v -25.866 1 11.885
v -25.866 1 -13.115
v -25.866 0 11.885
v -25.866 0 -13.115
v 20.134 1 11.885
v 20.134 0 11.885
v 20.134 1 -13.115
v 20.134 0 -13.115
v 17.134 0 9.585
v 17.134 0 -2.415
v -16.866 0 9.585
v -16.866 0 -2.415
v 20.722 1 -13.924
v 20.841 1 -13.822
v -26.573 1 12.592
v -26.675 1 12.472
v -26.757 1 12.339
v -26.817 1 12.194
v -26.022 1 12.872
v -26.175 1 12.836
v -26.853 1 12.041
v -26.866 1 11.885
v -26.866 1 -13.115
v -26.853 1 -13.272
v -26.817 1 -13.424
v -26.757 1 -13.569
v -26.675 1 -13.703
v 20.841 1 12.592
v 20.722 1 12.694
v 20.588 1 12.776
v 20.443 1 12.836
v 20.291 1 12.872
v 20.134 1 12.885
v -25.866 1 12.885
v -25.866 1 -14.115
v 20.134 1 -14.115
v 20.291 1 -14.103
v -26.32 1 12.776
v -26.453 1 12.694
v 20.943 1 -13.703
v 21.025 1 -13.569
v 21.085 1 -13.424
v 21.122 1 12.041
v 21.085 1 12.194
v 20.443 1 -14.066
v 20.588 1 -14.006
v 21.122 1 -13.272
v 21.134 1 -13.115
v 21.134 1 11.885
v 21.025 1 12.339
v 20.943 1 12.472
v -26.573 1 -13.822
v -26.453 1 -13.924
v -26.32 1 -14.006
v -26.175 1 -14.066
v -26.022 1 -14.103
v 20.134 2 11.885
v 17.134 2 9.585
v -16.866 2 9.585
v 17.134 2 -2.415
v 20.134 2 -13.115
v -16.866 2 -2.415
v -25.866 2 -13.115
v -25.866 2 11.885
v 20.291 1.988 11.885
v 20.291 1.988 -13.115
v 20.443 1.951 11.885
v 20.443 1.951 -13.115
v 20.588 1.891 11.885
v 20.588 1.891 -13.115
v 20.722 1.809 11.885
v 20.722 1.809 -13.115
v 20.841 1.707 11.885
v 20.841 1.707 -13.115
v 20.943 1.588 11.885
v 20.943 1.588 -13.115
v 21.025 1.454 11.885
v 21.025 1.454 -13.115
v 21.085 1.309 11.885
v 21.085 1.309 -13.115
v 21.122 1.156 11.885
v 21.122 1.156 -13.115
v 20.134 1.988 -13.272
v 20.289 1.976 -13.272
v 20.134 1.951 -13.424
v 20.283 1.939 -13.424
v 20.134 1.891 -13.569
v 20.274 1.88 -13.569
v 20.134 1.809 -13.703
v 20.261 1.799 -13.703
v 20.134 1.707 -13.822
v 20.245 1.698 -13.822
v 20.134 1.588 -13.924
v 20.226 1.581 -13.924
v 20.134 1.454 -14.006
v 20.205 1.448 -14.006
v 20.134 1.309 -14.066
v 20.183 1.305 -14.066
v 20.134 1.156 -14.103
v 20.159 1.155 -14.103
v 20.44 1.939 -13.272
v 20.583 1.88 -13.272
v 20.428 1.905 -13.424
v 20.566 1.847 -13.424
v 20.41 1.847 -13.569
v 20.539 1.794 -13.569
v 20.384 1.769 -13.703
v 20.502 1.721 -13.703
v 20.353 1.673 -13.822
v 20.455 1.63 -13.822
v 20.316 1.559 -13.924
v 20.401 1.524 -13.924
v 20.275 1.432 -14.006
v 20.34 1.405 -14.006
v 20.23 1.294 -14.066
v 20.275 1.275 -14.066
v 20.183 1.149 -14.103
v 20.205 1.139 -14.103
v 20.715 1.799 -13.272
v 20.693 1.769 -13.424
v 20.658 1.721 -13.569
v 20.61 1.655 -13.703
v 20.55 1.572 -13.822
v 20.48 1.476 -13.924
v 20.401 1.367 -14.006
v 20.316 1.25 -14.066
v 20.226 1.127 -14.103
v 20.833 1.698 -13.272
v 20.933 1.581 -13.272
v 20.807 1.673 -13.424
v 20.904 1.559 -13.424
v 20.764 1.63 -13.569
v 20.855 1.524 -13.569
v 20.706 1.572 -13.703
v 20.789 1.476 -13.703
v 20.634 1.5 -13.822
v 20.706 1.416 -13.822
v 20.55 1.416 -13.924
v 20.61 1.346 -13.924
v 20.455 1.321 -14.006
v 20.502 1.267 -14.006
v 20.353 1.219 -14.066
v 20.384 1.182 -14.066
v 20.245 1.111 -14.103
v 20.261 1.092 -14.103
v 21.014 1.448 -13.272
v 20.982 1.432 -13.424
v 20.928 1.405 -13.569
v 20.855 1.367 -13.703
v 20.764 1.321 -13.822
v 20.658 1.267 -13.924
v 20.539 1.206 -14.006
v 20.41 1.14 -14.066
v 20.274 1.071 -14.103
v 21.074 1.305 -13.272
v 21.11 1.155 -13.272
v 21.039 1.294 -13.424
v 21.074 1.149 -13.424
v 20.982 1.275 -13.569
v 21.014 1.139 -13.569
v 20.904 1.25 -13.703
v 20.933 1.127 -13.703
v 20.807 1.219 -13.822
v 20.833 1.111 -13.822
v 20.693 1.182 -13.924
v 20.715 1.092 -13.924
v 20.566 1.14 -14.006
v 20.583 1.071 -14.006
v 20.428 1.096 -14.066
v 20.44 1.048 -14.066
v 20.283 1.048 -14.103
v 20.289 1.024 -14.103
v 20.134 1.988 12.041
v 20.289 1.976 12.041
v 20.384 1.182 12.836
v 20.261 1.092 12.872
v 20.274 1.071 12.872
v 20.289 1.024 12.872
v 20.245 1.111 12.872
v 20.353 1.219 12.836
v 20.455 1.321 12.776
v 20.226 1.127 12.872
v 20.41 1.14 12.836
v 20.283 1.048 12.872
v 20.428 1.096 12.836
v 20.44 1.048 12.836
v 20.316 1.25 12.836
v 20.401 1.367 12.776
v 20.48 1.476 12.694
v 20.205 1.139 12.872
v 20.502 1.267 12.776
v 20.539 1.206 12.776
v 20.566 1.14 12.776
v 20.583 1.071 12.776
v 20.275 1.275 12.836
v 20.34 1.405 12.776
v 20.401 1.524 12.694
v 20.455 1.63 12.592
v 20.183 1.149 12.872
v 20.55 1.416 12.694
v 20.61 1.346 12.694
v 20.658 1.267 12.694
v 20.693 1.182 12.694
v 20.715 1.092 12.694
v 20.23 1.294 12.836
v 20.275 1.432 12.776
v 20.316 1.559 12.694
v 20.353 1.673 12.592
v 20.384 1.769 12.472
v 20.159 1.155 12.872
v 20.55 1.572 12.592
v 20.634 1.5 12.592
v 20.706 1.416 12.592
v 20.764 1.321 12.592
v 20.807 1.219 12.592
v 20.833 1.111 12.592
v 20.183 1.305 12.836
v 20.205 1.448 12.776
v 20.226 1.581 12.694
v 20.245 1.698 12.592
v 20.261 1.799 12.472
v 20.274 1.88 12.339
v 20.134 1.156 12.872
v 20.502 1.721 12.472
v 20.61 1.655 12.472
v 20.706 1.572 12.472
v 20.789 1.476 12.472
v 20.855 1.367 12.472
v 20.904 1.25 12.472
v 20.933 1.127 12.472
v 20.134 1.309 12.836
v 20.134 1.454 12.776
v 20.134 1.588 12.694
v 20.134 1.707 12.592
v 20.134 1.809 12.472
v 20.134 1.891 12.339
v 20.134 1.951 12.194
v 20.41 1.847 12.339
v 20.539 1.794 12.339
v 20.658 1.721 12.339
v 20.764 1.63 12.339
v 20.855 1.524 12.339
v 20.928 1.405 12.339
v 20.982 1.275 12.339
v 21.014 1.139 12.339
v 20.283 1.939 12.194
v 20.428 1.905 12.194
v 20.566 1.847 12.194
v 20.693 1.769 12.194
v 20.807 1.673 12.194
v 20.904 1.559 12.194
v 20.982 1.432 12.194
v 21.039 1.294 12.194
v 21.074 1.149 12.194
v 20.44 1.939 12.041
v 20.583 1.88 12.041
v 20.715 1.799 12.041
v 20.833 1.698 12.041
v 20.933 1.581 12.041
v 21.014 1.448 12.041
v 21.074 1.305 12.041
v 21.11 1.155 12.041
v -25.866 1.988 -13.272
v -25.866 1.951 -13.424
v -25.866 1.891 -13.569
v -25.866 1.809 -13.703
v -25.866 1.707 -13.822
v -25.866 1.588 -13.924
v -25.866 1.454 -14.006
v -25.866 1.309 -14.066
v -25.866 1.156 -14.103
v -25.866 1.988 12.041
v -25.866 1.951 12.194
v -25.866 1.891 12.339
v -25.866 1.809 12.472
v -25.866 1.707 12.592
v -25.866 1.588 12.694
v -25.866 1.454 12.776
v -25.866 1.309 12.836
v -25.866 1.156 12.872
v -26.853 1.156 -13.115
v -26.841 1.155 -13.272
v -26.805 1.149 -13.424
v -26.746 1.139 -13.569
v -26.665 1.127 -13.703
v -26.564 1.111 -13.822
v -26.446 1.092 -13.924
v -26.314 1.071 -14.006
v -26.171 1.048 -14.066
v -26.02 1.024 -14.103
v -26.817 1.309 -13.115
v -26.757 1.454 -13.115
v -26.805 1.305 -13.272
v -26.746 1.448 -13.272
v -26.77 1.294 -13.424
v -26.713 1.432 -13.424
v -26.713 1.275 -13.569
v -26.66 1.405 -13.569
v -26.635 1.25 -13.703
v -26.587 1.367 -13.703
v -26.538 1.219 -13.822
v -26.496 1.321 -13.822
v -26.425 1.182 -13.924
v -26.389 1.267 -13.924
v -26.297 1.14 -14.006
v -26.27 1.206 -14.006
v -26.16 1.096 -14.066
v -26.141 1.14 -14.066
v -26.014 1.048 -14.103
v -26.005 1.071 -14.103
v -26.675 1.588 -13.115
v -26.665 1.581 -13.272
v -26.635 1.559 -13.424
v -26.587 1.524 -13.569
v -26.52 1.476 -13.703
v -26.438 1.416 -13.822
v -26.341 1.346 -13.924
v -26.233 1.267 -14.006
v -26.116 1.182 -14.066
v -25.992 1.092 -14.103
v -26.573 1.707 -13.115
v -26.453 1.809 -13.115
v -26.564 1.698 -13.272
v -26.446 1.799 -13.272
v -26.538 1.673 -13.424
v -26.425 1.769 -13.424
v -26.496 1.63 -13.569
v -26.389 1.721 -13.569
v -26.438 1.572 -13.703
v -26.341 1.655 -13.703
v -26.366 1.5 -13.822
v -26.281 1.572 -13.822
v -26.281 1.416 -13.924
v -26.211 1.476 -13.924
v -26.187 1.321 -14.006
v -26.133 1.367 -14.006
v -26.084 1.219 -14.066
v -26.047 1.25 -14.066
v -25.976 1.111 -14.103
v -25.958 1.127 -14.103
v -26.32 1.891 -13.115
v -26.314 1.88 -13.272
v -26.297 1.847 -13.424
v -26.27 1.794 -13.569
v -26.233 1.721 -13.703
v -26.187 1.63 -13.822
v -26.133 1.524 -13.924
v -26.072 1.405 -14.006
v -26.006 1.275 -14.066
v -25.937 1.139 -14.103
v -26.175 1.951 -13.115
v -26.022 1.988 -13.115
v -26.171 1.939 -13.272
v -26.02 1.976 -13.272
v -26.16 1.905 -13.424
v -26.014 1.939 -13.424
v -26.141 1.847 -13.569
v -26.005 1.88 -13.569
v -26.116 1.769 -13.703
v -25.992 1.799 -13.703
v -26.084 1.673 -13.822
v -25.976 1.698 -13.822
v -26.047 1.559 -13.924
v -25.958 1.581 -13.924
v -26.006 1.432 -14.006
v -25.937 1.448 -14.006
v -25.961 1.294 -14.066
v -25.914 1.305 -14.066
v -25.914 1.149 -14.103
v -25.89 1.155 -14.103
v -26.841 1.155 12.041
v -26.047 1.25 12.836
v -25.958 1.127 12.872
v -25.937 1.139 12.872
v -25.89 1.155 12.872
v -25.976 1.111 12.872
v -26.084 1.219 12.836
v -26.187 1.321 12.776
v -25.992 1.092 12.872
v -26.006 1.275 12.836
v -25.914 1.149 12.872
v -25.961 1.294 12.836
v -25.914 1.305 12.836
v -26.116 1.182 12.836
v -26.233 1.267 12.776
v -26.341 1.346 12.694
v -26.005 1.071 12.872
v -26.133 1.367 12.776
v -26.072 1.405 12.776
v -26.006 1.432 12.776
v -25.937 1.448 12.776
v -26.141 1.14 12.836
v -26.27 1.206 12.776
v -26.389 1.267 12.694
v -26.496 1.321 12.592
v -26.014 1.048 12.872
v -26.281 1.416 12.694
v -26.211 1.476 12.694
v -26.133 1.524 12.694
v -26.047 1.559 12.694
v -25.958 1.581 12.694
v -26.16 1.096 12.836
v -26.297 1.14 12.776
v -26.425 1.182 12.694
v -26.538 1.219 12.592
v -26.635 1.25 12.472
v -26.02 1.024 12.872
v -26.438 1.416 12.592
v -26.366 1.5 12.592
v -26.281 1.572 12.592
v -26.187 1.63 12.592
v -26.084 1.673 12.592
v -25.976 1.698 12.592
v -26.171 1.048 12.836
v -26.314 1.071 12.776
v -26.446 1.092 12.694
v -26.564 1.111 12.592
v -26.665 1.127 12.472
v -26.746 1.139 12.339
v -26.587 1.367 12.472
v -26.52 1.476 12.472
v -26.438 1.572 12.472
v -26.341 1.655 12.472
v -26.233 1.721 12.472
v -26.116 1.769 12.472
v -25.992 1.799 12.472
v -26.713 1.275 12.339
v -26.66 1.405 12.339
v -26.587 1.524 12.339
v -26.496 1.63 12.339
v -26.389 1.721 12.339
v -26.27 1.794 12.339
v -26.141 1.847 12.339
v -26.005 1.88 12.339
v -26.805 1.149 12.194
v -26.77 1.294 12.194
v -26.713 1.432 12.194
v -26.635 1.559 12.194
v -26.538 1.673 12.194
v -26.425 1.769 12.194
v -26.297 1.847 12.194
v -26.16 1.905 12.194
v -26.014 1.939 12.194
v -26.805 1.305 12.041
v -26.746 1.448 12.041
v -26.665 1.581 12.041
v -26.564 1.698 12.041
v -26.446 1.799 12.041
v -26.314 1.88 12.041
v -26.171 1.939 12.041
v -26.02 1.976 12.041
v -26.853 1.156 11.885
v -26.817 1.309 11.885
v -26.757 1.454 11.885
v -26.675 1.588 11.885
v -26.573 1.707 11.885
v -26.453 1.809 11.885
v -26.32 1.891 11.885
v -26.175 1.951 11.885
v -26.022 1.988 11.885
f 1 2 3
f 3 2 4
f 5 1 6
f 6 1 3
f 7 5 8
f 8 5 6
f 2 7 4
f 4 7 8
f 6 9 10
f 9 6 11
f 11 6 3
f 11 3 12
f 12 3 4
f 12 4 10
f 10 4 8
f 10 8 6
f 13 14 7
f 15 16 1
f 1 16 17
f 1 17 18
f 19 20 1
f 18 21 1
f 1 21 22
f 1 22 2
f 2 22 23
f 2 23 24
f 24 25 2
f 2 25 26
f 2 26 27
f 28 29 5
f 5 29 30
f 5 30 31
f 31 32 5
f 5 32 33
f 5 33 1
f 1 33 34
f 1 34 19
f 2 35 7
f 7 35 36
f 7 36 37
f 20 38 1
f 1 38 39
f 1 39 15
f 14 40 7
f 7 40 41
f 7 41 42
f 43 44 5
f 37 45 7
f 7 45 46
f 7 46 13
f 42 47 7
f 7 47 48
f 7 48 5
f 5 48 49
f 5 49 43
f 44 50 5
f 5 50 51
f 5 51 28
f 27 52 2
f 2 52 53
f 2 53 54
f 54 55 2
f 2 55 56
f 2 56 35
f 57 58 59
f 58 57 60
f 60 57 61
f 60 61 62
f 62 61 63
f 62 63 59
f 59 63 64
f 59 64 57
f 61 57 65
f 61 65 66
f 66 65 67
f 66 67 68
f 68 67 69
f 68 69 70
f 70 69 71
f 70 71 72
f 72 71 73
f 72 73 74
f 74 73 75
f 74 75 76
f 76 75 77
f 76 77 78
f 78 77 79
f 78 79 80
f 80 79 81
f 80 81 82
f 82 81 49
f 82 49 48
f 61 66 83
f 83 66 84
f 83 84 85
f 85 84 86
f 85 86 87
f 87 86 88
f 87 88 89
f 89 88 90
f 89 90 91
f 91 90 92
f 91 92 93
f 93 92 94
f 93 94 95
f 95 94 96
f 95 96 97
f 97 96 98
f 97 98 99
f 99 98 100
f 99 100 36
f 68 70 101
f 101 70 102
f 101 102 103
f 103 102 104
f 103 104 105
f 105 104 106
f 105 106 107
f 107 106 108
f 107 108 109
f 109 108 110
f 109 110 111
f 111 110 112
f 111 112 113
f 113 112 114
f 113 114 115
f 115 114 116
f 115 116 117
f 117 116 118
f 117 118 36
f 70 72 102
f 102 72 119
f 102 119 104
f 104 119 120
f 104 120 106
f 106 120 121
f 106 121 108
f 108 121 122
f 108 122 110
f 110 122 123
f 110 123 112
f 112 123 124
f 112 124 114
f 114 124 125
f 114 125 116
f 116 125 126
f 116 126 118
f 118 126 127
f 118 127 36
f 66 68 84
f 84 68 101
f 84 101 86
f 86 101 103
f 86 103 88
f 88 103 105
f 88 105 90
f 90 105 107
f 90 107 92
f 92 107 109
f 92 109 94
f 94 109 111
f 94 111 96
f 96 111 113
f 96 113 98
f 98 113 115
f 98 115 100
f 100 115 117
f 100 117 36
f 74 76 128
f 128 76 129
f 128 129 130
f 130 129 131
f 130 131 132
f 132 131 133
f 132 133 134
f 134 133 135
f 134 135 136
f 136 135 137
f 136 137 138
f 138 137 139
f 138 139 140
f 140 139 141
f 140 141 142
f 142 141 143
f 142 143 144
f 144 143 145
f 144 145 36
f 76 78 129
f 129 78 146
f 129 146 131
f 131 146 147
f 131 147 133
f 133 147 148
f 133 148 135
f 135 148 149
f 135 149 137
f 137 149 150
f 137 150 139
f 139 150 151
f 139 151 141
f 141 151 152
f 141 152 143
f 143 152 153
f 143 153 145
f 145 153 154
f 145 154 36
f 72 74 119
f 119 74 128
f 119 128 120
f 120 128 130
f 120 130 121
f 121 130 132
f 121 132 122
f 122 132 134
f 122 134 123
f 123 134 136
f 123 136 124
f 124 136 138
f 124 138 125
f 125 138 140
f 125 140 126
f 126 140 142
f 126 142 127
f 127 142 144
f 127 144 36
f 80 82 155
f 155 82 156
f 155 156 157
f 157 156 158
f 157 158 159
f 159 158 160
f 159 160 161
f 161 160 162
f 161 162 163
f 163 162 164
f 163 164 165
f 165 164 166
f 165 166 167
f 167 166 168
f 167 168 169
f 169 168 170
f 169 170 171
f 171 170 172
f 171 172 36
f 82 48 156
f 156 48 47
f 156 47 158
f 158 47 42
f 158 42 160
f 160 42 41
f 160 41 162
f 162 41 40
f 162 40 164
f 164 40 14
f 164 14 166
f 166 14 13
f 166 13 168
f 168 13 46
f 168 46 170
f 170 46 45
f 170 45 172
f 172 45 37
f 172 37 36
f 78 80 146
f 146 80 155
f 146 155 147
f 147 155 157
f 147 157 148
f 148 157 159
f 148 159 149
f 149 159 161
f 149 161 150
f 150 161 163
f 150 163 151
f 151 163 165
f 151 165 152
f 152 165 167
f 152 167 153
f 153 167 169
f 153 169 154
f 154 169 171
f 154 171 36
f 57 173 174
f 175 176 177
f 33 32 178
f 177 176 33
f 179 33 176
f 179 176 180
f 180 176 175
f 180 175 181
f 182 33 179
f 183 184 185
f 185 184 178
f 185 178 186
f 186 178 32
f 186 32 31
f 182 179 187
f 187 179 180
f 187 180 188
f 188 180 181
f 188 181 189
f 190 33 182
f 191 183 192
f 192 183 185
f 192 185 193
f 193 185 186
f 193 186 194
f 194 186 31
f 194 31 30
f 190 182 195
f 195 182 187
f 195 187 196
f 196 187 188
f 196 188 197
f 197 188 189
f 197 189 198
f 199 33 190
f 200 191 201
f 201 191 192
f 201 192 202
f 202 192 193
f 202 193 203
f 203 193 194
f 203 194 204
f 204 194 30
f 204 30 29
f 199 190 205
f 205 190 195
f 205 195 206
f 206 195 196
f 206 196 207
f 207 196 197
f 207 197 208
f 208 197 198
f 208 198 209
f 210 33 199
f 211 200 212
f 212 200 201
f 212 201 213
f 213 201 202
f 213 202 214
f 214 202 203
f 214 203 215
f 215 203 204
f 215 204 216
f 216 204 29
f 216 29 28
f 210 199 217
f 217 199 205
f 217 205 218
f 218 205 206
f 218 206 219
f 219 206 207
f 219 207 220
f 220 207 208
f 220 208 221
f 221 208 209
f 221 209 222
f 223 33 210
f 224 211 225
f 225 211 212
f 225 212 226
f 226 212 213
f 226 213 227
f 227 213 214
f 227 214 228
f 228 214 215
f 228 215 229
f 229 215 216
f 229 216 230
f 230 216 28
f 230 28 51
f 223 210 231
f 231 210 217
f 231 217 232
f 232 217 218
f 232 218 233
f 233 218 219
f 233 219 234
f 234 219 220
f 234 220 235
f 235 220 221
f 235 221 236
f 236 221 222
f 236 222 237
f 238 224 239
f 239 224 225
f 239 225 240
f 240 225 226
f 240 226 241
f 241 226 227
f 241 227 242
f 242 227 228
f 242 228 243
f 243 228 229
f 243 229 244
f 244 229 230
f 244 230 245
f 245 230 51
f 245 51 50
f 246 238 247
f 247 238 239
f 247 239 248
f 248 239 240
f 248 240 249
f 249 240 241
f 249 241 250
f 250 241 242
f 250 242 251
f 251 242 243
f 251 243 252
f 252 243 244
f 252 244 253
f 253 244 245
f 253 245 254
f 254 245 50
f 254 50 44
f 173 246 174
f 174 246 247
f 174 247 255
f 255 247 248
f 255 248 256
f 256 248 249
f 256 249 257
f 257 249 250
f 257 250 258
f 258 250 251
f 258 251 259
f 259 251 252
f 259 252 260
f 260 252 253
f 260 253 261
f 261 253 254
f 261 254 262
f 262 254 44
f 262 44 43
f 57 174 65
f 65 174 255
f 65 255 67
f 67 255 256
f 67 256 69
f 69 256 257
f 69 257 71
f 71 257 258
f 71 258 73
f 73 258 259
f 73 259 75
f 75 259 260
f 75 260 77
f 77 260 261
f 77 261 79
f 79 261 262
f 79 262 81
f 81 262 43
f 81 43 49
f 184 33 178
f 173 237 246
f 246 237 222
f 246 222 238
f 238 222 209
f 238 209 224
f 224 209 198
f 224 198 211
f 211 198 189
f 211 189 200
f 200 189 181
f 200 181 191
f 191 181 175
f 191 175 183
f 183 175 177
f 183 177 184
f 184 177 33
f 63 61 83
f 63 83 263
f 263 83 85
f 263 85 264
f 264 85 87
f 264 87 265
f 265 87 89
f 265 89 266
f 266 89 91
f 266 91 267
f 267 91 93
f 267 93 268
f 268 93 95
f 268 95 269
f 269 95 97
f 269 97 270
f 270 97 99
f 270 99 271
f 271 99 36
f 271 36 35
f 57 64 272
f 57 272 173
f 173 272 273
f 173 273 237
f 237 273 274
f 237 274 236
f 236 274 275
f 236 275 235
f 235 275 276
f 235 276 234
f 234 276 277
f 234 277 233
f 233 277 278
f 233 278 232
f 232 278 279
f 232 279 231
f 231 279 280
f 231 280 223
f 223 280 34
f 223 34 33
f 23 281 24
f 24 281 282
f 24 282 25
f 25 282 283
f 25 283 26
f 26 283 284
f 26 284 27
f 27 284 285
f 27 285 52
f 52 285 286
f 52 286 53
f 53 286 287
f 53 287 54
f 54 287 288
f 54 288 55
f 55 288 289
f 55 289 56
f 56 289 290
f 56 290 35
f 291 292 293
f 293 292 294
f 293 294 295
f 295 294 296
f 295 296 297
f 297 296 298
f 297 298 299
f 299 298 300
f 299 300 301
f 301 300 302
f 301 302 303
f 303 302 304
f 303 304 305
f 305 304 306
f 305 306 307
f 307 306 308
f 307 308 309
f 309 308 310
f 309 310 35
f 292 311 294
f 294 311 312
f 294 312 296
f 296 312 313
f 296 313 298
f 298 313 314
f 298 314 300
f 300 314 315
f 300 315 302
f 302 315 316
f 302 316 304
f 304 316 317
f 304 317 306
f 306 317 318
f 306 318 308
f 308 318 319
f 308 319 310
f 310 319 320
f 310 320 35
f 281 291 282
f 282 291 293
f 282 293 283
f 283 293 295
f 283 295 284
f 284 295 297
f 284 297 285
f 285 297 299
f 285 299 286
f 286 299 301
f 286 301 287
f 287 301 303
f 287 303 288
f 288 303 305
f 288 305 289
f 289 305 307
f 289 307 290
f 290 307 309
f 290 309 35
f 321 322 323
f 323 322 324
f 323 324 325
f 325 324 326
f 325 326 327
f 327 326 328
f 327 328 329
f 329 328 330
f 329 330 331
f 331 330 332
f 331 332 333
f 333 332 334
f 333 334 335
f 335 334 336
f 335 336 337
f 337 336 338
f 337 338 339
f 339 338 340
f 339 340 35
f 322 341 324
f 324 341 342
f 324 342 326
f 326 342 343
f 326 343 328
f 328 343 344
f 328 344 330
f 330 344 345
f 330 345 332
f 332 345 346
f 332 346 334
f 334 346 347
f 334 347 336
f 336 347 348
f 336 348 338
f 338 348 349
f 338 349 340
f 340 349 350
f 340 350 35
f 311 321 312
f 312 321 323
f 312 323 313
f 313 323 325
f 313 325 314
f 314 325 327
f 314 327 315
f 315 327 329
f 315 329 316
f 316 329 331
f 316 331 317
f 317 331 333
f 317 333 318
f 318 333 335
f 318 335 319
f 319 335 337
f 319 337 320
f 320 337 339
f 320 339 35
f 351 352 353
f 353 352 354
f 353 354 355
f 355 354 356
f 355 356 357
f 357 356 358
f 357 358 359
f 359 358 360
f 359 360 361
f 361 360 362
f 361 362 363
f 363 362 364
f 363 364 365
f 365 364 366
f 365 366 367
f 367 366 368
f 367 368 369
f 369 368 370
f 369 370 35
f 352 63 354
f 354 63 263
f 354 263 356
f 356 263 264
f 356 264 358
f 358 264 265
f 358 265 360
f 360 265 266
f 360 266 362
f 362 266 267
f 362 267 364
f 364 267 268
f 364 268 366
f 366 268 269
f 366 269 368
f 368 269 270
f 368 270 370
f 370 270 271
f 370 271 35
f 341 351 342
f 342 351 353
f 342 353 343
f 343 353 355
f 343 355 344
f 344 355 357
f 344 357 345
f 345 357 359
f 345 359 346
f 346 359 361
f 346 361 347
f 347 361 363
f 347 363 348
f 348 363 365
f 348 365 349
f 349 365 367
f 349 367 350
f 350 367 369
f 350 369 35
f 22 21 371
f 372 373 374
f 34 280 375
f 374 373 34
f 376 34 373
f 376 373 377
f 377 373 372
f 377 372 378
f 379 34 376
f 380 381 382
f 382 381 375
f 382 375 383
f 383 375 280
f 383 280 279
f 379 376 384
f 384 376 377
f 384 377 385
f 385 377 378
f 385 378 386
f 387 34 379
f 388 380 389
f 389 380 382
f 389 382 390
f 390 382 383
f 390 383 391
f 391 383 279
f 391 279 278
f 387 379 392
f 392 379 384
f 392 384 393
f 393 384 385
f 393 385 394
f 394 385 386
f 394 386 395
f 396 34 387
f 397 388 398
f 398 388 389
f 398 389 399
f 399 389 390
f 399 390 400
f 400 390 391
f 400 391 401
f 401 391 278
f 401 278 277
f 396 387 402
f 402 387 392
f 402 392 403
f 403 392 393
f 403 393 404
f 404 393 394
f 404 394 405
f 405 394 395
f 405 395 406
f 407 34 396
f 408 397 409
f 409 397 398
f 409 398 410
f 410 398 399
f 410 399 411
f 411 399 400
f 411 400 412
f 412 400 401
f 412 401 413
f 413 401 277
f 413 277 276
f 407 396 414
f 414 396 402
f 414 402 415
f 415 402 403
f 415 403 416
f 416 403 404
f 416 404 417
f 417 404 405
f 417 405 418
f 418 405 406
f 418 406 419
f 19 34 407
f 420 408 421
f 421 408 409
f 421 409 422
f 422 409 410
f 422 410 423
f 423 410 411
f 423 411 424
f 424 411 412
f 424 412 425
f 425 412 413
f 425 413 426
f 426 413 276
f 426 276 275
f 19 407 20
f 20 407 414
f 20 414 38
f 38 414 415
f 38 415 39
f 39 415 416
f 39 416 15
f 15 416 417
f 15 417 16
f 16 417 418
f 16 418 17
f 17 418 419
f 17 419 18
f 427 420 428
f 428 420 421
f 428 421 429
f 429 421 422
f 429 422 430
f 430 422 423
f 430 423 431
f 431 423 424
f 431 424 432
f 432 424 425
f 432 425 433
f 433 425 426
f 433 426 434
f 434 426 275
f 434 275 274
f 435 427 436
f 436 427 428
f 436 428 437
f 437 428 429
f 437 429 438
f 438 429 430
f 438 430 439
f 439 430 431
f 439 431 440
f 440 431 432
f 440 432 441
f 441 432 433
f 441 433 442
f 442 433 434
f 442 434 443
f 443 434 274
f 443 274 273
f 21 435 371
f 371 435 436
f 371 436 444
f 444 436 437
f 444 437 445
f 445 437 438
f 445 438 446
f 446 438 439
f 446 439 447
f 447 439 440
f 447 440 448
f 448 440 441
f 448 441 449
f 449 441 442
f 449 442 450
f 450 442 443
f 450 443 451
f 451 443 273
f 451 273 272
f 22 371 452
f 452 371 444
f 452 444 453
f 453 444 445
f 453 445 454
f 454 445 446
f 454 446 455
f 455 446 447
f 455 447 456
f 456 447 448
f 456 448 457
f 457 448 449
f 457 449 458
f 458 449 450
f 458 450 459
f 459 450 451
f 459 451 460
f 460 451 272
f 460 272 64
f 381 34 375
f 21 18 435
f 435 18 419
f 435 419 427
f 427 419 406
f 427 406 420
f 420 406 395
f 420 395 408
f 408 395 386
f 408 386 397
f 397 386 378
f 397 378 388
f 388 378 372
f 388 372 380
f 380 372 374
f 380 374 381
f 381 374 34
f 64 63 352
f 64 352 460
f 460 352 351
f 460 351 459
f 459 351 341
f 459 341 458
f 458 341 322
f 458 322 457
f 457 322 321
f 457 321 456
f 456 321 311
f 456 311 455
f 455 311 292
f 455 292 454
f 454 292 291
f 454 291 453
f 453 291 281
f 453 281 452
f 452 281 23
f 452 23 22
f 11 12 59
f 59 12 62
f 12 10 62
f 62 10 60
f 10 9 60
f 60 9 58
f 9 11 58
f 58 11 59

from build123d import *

# Parameters (mm, degrees)
SKETCH_1_W          = 46
SKETCH_1_H          = 25
EXTRUDE_1_DEPTH     = 1
SKETCH_2_W          = 48
SKETCH_2_H          = 27
EXTRUDE_2_DEPTH     = 1
FILLET_1_R          = 1
SKETCH_3_W          = 34
SKETCH_3_H          = 12
CUT_EXTRUDE_2_DEPTH = 2


with BuildPart() as part:
    # ｽｹｯﾁ1 → ﾎﾞｽ - 押し出し1 (new body)
    with BuildSketch(Plane(origin=(0, 0, 0), x_dir=(1, 0, 0), z_dir=(0, 1, 0))):
        with Locations((-2.865663922, 0.615345108)):
            Rectangle(SKETCH_1_W, SKETCH_1_H)
    extrude(amount=EXTRUDE_1_DEPTH)

    # ｽｹｯﾁ2 → ﾎﾞｽ - 押し出し2 (add)
    with BuildSketch(Plane(origin=(0, 1, 0), x_dir=(1, 0, 0), z_dir=(0, 1, 0))):
        with Locations((-2.865663922, 0.615345108)):
            Rectangle(SKETCH_2_W, SKETCH_2_H)
    extrude(amount=EXTRUDE_2_DEPTH)

    # ﾌｨﾚｯﾄ1
    fillet_1_edges = [part.edges().sort_by_distance(p)[0] for p in [
        (-26.865663922, 1.5, -14.115345108),
        (-26.865663922, 1.5, 12.884654892),
        (21.134336078, 1.5, 12.884654892),
        (21.134336078, 1.5, -14.115345108),
        (-26.865663922, 2, -0.615345108),
        (-2.865663922, 2, 12.884654892),
        (21.134336078, 2, -0.615345108),
        (-2.865663922, 2, -14.115345108),
    ]]
    fillet(fillet_1_edges, radius=FILLET_1_R - 0.0001)  # a hair under: the kernel refuses the full size

    # ｽｹｯﾁ3 → ｶｯﾄ - 押し出し2 (cut)
    with BuildSketch(Plane(origin=(0, 2, 0), x_dir=(1, 0, 0), z_dir=(0, 1, 0))):
        with Locations((0.134336078, -3.584654892)):
            Rectangle(SKETCH_3_W, SKETCH_3_H)
    extrude(amount=-CUT_EXTRUDE_2_DEPTH, mode=Mode.SUBTRACT)


solid = part.part
